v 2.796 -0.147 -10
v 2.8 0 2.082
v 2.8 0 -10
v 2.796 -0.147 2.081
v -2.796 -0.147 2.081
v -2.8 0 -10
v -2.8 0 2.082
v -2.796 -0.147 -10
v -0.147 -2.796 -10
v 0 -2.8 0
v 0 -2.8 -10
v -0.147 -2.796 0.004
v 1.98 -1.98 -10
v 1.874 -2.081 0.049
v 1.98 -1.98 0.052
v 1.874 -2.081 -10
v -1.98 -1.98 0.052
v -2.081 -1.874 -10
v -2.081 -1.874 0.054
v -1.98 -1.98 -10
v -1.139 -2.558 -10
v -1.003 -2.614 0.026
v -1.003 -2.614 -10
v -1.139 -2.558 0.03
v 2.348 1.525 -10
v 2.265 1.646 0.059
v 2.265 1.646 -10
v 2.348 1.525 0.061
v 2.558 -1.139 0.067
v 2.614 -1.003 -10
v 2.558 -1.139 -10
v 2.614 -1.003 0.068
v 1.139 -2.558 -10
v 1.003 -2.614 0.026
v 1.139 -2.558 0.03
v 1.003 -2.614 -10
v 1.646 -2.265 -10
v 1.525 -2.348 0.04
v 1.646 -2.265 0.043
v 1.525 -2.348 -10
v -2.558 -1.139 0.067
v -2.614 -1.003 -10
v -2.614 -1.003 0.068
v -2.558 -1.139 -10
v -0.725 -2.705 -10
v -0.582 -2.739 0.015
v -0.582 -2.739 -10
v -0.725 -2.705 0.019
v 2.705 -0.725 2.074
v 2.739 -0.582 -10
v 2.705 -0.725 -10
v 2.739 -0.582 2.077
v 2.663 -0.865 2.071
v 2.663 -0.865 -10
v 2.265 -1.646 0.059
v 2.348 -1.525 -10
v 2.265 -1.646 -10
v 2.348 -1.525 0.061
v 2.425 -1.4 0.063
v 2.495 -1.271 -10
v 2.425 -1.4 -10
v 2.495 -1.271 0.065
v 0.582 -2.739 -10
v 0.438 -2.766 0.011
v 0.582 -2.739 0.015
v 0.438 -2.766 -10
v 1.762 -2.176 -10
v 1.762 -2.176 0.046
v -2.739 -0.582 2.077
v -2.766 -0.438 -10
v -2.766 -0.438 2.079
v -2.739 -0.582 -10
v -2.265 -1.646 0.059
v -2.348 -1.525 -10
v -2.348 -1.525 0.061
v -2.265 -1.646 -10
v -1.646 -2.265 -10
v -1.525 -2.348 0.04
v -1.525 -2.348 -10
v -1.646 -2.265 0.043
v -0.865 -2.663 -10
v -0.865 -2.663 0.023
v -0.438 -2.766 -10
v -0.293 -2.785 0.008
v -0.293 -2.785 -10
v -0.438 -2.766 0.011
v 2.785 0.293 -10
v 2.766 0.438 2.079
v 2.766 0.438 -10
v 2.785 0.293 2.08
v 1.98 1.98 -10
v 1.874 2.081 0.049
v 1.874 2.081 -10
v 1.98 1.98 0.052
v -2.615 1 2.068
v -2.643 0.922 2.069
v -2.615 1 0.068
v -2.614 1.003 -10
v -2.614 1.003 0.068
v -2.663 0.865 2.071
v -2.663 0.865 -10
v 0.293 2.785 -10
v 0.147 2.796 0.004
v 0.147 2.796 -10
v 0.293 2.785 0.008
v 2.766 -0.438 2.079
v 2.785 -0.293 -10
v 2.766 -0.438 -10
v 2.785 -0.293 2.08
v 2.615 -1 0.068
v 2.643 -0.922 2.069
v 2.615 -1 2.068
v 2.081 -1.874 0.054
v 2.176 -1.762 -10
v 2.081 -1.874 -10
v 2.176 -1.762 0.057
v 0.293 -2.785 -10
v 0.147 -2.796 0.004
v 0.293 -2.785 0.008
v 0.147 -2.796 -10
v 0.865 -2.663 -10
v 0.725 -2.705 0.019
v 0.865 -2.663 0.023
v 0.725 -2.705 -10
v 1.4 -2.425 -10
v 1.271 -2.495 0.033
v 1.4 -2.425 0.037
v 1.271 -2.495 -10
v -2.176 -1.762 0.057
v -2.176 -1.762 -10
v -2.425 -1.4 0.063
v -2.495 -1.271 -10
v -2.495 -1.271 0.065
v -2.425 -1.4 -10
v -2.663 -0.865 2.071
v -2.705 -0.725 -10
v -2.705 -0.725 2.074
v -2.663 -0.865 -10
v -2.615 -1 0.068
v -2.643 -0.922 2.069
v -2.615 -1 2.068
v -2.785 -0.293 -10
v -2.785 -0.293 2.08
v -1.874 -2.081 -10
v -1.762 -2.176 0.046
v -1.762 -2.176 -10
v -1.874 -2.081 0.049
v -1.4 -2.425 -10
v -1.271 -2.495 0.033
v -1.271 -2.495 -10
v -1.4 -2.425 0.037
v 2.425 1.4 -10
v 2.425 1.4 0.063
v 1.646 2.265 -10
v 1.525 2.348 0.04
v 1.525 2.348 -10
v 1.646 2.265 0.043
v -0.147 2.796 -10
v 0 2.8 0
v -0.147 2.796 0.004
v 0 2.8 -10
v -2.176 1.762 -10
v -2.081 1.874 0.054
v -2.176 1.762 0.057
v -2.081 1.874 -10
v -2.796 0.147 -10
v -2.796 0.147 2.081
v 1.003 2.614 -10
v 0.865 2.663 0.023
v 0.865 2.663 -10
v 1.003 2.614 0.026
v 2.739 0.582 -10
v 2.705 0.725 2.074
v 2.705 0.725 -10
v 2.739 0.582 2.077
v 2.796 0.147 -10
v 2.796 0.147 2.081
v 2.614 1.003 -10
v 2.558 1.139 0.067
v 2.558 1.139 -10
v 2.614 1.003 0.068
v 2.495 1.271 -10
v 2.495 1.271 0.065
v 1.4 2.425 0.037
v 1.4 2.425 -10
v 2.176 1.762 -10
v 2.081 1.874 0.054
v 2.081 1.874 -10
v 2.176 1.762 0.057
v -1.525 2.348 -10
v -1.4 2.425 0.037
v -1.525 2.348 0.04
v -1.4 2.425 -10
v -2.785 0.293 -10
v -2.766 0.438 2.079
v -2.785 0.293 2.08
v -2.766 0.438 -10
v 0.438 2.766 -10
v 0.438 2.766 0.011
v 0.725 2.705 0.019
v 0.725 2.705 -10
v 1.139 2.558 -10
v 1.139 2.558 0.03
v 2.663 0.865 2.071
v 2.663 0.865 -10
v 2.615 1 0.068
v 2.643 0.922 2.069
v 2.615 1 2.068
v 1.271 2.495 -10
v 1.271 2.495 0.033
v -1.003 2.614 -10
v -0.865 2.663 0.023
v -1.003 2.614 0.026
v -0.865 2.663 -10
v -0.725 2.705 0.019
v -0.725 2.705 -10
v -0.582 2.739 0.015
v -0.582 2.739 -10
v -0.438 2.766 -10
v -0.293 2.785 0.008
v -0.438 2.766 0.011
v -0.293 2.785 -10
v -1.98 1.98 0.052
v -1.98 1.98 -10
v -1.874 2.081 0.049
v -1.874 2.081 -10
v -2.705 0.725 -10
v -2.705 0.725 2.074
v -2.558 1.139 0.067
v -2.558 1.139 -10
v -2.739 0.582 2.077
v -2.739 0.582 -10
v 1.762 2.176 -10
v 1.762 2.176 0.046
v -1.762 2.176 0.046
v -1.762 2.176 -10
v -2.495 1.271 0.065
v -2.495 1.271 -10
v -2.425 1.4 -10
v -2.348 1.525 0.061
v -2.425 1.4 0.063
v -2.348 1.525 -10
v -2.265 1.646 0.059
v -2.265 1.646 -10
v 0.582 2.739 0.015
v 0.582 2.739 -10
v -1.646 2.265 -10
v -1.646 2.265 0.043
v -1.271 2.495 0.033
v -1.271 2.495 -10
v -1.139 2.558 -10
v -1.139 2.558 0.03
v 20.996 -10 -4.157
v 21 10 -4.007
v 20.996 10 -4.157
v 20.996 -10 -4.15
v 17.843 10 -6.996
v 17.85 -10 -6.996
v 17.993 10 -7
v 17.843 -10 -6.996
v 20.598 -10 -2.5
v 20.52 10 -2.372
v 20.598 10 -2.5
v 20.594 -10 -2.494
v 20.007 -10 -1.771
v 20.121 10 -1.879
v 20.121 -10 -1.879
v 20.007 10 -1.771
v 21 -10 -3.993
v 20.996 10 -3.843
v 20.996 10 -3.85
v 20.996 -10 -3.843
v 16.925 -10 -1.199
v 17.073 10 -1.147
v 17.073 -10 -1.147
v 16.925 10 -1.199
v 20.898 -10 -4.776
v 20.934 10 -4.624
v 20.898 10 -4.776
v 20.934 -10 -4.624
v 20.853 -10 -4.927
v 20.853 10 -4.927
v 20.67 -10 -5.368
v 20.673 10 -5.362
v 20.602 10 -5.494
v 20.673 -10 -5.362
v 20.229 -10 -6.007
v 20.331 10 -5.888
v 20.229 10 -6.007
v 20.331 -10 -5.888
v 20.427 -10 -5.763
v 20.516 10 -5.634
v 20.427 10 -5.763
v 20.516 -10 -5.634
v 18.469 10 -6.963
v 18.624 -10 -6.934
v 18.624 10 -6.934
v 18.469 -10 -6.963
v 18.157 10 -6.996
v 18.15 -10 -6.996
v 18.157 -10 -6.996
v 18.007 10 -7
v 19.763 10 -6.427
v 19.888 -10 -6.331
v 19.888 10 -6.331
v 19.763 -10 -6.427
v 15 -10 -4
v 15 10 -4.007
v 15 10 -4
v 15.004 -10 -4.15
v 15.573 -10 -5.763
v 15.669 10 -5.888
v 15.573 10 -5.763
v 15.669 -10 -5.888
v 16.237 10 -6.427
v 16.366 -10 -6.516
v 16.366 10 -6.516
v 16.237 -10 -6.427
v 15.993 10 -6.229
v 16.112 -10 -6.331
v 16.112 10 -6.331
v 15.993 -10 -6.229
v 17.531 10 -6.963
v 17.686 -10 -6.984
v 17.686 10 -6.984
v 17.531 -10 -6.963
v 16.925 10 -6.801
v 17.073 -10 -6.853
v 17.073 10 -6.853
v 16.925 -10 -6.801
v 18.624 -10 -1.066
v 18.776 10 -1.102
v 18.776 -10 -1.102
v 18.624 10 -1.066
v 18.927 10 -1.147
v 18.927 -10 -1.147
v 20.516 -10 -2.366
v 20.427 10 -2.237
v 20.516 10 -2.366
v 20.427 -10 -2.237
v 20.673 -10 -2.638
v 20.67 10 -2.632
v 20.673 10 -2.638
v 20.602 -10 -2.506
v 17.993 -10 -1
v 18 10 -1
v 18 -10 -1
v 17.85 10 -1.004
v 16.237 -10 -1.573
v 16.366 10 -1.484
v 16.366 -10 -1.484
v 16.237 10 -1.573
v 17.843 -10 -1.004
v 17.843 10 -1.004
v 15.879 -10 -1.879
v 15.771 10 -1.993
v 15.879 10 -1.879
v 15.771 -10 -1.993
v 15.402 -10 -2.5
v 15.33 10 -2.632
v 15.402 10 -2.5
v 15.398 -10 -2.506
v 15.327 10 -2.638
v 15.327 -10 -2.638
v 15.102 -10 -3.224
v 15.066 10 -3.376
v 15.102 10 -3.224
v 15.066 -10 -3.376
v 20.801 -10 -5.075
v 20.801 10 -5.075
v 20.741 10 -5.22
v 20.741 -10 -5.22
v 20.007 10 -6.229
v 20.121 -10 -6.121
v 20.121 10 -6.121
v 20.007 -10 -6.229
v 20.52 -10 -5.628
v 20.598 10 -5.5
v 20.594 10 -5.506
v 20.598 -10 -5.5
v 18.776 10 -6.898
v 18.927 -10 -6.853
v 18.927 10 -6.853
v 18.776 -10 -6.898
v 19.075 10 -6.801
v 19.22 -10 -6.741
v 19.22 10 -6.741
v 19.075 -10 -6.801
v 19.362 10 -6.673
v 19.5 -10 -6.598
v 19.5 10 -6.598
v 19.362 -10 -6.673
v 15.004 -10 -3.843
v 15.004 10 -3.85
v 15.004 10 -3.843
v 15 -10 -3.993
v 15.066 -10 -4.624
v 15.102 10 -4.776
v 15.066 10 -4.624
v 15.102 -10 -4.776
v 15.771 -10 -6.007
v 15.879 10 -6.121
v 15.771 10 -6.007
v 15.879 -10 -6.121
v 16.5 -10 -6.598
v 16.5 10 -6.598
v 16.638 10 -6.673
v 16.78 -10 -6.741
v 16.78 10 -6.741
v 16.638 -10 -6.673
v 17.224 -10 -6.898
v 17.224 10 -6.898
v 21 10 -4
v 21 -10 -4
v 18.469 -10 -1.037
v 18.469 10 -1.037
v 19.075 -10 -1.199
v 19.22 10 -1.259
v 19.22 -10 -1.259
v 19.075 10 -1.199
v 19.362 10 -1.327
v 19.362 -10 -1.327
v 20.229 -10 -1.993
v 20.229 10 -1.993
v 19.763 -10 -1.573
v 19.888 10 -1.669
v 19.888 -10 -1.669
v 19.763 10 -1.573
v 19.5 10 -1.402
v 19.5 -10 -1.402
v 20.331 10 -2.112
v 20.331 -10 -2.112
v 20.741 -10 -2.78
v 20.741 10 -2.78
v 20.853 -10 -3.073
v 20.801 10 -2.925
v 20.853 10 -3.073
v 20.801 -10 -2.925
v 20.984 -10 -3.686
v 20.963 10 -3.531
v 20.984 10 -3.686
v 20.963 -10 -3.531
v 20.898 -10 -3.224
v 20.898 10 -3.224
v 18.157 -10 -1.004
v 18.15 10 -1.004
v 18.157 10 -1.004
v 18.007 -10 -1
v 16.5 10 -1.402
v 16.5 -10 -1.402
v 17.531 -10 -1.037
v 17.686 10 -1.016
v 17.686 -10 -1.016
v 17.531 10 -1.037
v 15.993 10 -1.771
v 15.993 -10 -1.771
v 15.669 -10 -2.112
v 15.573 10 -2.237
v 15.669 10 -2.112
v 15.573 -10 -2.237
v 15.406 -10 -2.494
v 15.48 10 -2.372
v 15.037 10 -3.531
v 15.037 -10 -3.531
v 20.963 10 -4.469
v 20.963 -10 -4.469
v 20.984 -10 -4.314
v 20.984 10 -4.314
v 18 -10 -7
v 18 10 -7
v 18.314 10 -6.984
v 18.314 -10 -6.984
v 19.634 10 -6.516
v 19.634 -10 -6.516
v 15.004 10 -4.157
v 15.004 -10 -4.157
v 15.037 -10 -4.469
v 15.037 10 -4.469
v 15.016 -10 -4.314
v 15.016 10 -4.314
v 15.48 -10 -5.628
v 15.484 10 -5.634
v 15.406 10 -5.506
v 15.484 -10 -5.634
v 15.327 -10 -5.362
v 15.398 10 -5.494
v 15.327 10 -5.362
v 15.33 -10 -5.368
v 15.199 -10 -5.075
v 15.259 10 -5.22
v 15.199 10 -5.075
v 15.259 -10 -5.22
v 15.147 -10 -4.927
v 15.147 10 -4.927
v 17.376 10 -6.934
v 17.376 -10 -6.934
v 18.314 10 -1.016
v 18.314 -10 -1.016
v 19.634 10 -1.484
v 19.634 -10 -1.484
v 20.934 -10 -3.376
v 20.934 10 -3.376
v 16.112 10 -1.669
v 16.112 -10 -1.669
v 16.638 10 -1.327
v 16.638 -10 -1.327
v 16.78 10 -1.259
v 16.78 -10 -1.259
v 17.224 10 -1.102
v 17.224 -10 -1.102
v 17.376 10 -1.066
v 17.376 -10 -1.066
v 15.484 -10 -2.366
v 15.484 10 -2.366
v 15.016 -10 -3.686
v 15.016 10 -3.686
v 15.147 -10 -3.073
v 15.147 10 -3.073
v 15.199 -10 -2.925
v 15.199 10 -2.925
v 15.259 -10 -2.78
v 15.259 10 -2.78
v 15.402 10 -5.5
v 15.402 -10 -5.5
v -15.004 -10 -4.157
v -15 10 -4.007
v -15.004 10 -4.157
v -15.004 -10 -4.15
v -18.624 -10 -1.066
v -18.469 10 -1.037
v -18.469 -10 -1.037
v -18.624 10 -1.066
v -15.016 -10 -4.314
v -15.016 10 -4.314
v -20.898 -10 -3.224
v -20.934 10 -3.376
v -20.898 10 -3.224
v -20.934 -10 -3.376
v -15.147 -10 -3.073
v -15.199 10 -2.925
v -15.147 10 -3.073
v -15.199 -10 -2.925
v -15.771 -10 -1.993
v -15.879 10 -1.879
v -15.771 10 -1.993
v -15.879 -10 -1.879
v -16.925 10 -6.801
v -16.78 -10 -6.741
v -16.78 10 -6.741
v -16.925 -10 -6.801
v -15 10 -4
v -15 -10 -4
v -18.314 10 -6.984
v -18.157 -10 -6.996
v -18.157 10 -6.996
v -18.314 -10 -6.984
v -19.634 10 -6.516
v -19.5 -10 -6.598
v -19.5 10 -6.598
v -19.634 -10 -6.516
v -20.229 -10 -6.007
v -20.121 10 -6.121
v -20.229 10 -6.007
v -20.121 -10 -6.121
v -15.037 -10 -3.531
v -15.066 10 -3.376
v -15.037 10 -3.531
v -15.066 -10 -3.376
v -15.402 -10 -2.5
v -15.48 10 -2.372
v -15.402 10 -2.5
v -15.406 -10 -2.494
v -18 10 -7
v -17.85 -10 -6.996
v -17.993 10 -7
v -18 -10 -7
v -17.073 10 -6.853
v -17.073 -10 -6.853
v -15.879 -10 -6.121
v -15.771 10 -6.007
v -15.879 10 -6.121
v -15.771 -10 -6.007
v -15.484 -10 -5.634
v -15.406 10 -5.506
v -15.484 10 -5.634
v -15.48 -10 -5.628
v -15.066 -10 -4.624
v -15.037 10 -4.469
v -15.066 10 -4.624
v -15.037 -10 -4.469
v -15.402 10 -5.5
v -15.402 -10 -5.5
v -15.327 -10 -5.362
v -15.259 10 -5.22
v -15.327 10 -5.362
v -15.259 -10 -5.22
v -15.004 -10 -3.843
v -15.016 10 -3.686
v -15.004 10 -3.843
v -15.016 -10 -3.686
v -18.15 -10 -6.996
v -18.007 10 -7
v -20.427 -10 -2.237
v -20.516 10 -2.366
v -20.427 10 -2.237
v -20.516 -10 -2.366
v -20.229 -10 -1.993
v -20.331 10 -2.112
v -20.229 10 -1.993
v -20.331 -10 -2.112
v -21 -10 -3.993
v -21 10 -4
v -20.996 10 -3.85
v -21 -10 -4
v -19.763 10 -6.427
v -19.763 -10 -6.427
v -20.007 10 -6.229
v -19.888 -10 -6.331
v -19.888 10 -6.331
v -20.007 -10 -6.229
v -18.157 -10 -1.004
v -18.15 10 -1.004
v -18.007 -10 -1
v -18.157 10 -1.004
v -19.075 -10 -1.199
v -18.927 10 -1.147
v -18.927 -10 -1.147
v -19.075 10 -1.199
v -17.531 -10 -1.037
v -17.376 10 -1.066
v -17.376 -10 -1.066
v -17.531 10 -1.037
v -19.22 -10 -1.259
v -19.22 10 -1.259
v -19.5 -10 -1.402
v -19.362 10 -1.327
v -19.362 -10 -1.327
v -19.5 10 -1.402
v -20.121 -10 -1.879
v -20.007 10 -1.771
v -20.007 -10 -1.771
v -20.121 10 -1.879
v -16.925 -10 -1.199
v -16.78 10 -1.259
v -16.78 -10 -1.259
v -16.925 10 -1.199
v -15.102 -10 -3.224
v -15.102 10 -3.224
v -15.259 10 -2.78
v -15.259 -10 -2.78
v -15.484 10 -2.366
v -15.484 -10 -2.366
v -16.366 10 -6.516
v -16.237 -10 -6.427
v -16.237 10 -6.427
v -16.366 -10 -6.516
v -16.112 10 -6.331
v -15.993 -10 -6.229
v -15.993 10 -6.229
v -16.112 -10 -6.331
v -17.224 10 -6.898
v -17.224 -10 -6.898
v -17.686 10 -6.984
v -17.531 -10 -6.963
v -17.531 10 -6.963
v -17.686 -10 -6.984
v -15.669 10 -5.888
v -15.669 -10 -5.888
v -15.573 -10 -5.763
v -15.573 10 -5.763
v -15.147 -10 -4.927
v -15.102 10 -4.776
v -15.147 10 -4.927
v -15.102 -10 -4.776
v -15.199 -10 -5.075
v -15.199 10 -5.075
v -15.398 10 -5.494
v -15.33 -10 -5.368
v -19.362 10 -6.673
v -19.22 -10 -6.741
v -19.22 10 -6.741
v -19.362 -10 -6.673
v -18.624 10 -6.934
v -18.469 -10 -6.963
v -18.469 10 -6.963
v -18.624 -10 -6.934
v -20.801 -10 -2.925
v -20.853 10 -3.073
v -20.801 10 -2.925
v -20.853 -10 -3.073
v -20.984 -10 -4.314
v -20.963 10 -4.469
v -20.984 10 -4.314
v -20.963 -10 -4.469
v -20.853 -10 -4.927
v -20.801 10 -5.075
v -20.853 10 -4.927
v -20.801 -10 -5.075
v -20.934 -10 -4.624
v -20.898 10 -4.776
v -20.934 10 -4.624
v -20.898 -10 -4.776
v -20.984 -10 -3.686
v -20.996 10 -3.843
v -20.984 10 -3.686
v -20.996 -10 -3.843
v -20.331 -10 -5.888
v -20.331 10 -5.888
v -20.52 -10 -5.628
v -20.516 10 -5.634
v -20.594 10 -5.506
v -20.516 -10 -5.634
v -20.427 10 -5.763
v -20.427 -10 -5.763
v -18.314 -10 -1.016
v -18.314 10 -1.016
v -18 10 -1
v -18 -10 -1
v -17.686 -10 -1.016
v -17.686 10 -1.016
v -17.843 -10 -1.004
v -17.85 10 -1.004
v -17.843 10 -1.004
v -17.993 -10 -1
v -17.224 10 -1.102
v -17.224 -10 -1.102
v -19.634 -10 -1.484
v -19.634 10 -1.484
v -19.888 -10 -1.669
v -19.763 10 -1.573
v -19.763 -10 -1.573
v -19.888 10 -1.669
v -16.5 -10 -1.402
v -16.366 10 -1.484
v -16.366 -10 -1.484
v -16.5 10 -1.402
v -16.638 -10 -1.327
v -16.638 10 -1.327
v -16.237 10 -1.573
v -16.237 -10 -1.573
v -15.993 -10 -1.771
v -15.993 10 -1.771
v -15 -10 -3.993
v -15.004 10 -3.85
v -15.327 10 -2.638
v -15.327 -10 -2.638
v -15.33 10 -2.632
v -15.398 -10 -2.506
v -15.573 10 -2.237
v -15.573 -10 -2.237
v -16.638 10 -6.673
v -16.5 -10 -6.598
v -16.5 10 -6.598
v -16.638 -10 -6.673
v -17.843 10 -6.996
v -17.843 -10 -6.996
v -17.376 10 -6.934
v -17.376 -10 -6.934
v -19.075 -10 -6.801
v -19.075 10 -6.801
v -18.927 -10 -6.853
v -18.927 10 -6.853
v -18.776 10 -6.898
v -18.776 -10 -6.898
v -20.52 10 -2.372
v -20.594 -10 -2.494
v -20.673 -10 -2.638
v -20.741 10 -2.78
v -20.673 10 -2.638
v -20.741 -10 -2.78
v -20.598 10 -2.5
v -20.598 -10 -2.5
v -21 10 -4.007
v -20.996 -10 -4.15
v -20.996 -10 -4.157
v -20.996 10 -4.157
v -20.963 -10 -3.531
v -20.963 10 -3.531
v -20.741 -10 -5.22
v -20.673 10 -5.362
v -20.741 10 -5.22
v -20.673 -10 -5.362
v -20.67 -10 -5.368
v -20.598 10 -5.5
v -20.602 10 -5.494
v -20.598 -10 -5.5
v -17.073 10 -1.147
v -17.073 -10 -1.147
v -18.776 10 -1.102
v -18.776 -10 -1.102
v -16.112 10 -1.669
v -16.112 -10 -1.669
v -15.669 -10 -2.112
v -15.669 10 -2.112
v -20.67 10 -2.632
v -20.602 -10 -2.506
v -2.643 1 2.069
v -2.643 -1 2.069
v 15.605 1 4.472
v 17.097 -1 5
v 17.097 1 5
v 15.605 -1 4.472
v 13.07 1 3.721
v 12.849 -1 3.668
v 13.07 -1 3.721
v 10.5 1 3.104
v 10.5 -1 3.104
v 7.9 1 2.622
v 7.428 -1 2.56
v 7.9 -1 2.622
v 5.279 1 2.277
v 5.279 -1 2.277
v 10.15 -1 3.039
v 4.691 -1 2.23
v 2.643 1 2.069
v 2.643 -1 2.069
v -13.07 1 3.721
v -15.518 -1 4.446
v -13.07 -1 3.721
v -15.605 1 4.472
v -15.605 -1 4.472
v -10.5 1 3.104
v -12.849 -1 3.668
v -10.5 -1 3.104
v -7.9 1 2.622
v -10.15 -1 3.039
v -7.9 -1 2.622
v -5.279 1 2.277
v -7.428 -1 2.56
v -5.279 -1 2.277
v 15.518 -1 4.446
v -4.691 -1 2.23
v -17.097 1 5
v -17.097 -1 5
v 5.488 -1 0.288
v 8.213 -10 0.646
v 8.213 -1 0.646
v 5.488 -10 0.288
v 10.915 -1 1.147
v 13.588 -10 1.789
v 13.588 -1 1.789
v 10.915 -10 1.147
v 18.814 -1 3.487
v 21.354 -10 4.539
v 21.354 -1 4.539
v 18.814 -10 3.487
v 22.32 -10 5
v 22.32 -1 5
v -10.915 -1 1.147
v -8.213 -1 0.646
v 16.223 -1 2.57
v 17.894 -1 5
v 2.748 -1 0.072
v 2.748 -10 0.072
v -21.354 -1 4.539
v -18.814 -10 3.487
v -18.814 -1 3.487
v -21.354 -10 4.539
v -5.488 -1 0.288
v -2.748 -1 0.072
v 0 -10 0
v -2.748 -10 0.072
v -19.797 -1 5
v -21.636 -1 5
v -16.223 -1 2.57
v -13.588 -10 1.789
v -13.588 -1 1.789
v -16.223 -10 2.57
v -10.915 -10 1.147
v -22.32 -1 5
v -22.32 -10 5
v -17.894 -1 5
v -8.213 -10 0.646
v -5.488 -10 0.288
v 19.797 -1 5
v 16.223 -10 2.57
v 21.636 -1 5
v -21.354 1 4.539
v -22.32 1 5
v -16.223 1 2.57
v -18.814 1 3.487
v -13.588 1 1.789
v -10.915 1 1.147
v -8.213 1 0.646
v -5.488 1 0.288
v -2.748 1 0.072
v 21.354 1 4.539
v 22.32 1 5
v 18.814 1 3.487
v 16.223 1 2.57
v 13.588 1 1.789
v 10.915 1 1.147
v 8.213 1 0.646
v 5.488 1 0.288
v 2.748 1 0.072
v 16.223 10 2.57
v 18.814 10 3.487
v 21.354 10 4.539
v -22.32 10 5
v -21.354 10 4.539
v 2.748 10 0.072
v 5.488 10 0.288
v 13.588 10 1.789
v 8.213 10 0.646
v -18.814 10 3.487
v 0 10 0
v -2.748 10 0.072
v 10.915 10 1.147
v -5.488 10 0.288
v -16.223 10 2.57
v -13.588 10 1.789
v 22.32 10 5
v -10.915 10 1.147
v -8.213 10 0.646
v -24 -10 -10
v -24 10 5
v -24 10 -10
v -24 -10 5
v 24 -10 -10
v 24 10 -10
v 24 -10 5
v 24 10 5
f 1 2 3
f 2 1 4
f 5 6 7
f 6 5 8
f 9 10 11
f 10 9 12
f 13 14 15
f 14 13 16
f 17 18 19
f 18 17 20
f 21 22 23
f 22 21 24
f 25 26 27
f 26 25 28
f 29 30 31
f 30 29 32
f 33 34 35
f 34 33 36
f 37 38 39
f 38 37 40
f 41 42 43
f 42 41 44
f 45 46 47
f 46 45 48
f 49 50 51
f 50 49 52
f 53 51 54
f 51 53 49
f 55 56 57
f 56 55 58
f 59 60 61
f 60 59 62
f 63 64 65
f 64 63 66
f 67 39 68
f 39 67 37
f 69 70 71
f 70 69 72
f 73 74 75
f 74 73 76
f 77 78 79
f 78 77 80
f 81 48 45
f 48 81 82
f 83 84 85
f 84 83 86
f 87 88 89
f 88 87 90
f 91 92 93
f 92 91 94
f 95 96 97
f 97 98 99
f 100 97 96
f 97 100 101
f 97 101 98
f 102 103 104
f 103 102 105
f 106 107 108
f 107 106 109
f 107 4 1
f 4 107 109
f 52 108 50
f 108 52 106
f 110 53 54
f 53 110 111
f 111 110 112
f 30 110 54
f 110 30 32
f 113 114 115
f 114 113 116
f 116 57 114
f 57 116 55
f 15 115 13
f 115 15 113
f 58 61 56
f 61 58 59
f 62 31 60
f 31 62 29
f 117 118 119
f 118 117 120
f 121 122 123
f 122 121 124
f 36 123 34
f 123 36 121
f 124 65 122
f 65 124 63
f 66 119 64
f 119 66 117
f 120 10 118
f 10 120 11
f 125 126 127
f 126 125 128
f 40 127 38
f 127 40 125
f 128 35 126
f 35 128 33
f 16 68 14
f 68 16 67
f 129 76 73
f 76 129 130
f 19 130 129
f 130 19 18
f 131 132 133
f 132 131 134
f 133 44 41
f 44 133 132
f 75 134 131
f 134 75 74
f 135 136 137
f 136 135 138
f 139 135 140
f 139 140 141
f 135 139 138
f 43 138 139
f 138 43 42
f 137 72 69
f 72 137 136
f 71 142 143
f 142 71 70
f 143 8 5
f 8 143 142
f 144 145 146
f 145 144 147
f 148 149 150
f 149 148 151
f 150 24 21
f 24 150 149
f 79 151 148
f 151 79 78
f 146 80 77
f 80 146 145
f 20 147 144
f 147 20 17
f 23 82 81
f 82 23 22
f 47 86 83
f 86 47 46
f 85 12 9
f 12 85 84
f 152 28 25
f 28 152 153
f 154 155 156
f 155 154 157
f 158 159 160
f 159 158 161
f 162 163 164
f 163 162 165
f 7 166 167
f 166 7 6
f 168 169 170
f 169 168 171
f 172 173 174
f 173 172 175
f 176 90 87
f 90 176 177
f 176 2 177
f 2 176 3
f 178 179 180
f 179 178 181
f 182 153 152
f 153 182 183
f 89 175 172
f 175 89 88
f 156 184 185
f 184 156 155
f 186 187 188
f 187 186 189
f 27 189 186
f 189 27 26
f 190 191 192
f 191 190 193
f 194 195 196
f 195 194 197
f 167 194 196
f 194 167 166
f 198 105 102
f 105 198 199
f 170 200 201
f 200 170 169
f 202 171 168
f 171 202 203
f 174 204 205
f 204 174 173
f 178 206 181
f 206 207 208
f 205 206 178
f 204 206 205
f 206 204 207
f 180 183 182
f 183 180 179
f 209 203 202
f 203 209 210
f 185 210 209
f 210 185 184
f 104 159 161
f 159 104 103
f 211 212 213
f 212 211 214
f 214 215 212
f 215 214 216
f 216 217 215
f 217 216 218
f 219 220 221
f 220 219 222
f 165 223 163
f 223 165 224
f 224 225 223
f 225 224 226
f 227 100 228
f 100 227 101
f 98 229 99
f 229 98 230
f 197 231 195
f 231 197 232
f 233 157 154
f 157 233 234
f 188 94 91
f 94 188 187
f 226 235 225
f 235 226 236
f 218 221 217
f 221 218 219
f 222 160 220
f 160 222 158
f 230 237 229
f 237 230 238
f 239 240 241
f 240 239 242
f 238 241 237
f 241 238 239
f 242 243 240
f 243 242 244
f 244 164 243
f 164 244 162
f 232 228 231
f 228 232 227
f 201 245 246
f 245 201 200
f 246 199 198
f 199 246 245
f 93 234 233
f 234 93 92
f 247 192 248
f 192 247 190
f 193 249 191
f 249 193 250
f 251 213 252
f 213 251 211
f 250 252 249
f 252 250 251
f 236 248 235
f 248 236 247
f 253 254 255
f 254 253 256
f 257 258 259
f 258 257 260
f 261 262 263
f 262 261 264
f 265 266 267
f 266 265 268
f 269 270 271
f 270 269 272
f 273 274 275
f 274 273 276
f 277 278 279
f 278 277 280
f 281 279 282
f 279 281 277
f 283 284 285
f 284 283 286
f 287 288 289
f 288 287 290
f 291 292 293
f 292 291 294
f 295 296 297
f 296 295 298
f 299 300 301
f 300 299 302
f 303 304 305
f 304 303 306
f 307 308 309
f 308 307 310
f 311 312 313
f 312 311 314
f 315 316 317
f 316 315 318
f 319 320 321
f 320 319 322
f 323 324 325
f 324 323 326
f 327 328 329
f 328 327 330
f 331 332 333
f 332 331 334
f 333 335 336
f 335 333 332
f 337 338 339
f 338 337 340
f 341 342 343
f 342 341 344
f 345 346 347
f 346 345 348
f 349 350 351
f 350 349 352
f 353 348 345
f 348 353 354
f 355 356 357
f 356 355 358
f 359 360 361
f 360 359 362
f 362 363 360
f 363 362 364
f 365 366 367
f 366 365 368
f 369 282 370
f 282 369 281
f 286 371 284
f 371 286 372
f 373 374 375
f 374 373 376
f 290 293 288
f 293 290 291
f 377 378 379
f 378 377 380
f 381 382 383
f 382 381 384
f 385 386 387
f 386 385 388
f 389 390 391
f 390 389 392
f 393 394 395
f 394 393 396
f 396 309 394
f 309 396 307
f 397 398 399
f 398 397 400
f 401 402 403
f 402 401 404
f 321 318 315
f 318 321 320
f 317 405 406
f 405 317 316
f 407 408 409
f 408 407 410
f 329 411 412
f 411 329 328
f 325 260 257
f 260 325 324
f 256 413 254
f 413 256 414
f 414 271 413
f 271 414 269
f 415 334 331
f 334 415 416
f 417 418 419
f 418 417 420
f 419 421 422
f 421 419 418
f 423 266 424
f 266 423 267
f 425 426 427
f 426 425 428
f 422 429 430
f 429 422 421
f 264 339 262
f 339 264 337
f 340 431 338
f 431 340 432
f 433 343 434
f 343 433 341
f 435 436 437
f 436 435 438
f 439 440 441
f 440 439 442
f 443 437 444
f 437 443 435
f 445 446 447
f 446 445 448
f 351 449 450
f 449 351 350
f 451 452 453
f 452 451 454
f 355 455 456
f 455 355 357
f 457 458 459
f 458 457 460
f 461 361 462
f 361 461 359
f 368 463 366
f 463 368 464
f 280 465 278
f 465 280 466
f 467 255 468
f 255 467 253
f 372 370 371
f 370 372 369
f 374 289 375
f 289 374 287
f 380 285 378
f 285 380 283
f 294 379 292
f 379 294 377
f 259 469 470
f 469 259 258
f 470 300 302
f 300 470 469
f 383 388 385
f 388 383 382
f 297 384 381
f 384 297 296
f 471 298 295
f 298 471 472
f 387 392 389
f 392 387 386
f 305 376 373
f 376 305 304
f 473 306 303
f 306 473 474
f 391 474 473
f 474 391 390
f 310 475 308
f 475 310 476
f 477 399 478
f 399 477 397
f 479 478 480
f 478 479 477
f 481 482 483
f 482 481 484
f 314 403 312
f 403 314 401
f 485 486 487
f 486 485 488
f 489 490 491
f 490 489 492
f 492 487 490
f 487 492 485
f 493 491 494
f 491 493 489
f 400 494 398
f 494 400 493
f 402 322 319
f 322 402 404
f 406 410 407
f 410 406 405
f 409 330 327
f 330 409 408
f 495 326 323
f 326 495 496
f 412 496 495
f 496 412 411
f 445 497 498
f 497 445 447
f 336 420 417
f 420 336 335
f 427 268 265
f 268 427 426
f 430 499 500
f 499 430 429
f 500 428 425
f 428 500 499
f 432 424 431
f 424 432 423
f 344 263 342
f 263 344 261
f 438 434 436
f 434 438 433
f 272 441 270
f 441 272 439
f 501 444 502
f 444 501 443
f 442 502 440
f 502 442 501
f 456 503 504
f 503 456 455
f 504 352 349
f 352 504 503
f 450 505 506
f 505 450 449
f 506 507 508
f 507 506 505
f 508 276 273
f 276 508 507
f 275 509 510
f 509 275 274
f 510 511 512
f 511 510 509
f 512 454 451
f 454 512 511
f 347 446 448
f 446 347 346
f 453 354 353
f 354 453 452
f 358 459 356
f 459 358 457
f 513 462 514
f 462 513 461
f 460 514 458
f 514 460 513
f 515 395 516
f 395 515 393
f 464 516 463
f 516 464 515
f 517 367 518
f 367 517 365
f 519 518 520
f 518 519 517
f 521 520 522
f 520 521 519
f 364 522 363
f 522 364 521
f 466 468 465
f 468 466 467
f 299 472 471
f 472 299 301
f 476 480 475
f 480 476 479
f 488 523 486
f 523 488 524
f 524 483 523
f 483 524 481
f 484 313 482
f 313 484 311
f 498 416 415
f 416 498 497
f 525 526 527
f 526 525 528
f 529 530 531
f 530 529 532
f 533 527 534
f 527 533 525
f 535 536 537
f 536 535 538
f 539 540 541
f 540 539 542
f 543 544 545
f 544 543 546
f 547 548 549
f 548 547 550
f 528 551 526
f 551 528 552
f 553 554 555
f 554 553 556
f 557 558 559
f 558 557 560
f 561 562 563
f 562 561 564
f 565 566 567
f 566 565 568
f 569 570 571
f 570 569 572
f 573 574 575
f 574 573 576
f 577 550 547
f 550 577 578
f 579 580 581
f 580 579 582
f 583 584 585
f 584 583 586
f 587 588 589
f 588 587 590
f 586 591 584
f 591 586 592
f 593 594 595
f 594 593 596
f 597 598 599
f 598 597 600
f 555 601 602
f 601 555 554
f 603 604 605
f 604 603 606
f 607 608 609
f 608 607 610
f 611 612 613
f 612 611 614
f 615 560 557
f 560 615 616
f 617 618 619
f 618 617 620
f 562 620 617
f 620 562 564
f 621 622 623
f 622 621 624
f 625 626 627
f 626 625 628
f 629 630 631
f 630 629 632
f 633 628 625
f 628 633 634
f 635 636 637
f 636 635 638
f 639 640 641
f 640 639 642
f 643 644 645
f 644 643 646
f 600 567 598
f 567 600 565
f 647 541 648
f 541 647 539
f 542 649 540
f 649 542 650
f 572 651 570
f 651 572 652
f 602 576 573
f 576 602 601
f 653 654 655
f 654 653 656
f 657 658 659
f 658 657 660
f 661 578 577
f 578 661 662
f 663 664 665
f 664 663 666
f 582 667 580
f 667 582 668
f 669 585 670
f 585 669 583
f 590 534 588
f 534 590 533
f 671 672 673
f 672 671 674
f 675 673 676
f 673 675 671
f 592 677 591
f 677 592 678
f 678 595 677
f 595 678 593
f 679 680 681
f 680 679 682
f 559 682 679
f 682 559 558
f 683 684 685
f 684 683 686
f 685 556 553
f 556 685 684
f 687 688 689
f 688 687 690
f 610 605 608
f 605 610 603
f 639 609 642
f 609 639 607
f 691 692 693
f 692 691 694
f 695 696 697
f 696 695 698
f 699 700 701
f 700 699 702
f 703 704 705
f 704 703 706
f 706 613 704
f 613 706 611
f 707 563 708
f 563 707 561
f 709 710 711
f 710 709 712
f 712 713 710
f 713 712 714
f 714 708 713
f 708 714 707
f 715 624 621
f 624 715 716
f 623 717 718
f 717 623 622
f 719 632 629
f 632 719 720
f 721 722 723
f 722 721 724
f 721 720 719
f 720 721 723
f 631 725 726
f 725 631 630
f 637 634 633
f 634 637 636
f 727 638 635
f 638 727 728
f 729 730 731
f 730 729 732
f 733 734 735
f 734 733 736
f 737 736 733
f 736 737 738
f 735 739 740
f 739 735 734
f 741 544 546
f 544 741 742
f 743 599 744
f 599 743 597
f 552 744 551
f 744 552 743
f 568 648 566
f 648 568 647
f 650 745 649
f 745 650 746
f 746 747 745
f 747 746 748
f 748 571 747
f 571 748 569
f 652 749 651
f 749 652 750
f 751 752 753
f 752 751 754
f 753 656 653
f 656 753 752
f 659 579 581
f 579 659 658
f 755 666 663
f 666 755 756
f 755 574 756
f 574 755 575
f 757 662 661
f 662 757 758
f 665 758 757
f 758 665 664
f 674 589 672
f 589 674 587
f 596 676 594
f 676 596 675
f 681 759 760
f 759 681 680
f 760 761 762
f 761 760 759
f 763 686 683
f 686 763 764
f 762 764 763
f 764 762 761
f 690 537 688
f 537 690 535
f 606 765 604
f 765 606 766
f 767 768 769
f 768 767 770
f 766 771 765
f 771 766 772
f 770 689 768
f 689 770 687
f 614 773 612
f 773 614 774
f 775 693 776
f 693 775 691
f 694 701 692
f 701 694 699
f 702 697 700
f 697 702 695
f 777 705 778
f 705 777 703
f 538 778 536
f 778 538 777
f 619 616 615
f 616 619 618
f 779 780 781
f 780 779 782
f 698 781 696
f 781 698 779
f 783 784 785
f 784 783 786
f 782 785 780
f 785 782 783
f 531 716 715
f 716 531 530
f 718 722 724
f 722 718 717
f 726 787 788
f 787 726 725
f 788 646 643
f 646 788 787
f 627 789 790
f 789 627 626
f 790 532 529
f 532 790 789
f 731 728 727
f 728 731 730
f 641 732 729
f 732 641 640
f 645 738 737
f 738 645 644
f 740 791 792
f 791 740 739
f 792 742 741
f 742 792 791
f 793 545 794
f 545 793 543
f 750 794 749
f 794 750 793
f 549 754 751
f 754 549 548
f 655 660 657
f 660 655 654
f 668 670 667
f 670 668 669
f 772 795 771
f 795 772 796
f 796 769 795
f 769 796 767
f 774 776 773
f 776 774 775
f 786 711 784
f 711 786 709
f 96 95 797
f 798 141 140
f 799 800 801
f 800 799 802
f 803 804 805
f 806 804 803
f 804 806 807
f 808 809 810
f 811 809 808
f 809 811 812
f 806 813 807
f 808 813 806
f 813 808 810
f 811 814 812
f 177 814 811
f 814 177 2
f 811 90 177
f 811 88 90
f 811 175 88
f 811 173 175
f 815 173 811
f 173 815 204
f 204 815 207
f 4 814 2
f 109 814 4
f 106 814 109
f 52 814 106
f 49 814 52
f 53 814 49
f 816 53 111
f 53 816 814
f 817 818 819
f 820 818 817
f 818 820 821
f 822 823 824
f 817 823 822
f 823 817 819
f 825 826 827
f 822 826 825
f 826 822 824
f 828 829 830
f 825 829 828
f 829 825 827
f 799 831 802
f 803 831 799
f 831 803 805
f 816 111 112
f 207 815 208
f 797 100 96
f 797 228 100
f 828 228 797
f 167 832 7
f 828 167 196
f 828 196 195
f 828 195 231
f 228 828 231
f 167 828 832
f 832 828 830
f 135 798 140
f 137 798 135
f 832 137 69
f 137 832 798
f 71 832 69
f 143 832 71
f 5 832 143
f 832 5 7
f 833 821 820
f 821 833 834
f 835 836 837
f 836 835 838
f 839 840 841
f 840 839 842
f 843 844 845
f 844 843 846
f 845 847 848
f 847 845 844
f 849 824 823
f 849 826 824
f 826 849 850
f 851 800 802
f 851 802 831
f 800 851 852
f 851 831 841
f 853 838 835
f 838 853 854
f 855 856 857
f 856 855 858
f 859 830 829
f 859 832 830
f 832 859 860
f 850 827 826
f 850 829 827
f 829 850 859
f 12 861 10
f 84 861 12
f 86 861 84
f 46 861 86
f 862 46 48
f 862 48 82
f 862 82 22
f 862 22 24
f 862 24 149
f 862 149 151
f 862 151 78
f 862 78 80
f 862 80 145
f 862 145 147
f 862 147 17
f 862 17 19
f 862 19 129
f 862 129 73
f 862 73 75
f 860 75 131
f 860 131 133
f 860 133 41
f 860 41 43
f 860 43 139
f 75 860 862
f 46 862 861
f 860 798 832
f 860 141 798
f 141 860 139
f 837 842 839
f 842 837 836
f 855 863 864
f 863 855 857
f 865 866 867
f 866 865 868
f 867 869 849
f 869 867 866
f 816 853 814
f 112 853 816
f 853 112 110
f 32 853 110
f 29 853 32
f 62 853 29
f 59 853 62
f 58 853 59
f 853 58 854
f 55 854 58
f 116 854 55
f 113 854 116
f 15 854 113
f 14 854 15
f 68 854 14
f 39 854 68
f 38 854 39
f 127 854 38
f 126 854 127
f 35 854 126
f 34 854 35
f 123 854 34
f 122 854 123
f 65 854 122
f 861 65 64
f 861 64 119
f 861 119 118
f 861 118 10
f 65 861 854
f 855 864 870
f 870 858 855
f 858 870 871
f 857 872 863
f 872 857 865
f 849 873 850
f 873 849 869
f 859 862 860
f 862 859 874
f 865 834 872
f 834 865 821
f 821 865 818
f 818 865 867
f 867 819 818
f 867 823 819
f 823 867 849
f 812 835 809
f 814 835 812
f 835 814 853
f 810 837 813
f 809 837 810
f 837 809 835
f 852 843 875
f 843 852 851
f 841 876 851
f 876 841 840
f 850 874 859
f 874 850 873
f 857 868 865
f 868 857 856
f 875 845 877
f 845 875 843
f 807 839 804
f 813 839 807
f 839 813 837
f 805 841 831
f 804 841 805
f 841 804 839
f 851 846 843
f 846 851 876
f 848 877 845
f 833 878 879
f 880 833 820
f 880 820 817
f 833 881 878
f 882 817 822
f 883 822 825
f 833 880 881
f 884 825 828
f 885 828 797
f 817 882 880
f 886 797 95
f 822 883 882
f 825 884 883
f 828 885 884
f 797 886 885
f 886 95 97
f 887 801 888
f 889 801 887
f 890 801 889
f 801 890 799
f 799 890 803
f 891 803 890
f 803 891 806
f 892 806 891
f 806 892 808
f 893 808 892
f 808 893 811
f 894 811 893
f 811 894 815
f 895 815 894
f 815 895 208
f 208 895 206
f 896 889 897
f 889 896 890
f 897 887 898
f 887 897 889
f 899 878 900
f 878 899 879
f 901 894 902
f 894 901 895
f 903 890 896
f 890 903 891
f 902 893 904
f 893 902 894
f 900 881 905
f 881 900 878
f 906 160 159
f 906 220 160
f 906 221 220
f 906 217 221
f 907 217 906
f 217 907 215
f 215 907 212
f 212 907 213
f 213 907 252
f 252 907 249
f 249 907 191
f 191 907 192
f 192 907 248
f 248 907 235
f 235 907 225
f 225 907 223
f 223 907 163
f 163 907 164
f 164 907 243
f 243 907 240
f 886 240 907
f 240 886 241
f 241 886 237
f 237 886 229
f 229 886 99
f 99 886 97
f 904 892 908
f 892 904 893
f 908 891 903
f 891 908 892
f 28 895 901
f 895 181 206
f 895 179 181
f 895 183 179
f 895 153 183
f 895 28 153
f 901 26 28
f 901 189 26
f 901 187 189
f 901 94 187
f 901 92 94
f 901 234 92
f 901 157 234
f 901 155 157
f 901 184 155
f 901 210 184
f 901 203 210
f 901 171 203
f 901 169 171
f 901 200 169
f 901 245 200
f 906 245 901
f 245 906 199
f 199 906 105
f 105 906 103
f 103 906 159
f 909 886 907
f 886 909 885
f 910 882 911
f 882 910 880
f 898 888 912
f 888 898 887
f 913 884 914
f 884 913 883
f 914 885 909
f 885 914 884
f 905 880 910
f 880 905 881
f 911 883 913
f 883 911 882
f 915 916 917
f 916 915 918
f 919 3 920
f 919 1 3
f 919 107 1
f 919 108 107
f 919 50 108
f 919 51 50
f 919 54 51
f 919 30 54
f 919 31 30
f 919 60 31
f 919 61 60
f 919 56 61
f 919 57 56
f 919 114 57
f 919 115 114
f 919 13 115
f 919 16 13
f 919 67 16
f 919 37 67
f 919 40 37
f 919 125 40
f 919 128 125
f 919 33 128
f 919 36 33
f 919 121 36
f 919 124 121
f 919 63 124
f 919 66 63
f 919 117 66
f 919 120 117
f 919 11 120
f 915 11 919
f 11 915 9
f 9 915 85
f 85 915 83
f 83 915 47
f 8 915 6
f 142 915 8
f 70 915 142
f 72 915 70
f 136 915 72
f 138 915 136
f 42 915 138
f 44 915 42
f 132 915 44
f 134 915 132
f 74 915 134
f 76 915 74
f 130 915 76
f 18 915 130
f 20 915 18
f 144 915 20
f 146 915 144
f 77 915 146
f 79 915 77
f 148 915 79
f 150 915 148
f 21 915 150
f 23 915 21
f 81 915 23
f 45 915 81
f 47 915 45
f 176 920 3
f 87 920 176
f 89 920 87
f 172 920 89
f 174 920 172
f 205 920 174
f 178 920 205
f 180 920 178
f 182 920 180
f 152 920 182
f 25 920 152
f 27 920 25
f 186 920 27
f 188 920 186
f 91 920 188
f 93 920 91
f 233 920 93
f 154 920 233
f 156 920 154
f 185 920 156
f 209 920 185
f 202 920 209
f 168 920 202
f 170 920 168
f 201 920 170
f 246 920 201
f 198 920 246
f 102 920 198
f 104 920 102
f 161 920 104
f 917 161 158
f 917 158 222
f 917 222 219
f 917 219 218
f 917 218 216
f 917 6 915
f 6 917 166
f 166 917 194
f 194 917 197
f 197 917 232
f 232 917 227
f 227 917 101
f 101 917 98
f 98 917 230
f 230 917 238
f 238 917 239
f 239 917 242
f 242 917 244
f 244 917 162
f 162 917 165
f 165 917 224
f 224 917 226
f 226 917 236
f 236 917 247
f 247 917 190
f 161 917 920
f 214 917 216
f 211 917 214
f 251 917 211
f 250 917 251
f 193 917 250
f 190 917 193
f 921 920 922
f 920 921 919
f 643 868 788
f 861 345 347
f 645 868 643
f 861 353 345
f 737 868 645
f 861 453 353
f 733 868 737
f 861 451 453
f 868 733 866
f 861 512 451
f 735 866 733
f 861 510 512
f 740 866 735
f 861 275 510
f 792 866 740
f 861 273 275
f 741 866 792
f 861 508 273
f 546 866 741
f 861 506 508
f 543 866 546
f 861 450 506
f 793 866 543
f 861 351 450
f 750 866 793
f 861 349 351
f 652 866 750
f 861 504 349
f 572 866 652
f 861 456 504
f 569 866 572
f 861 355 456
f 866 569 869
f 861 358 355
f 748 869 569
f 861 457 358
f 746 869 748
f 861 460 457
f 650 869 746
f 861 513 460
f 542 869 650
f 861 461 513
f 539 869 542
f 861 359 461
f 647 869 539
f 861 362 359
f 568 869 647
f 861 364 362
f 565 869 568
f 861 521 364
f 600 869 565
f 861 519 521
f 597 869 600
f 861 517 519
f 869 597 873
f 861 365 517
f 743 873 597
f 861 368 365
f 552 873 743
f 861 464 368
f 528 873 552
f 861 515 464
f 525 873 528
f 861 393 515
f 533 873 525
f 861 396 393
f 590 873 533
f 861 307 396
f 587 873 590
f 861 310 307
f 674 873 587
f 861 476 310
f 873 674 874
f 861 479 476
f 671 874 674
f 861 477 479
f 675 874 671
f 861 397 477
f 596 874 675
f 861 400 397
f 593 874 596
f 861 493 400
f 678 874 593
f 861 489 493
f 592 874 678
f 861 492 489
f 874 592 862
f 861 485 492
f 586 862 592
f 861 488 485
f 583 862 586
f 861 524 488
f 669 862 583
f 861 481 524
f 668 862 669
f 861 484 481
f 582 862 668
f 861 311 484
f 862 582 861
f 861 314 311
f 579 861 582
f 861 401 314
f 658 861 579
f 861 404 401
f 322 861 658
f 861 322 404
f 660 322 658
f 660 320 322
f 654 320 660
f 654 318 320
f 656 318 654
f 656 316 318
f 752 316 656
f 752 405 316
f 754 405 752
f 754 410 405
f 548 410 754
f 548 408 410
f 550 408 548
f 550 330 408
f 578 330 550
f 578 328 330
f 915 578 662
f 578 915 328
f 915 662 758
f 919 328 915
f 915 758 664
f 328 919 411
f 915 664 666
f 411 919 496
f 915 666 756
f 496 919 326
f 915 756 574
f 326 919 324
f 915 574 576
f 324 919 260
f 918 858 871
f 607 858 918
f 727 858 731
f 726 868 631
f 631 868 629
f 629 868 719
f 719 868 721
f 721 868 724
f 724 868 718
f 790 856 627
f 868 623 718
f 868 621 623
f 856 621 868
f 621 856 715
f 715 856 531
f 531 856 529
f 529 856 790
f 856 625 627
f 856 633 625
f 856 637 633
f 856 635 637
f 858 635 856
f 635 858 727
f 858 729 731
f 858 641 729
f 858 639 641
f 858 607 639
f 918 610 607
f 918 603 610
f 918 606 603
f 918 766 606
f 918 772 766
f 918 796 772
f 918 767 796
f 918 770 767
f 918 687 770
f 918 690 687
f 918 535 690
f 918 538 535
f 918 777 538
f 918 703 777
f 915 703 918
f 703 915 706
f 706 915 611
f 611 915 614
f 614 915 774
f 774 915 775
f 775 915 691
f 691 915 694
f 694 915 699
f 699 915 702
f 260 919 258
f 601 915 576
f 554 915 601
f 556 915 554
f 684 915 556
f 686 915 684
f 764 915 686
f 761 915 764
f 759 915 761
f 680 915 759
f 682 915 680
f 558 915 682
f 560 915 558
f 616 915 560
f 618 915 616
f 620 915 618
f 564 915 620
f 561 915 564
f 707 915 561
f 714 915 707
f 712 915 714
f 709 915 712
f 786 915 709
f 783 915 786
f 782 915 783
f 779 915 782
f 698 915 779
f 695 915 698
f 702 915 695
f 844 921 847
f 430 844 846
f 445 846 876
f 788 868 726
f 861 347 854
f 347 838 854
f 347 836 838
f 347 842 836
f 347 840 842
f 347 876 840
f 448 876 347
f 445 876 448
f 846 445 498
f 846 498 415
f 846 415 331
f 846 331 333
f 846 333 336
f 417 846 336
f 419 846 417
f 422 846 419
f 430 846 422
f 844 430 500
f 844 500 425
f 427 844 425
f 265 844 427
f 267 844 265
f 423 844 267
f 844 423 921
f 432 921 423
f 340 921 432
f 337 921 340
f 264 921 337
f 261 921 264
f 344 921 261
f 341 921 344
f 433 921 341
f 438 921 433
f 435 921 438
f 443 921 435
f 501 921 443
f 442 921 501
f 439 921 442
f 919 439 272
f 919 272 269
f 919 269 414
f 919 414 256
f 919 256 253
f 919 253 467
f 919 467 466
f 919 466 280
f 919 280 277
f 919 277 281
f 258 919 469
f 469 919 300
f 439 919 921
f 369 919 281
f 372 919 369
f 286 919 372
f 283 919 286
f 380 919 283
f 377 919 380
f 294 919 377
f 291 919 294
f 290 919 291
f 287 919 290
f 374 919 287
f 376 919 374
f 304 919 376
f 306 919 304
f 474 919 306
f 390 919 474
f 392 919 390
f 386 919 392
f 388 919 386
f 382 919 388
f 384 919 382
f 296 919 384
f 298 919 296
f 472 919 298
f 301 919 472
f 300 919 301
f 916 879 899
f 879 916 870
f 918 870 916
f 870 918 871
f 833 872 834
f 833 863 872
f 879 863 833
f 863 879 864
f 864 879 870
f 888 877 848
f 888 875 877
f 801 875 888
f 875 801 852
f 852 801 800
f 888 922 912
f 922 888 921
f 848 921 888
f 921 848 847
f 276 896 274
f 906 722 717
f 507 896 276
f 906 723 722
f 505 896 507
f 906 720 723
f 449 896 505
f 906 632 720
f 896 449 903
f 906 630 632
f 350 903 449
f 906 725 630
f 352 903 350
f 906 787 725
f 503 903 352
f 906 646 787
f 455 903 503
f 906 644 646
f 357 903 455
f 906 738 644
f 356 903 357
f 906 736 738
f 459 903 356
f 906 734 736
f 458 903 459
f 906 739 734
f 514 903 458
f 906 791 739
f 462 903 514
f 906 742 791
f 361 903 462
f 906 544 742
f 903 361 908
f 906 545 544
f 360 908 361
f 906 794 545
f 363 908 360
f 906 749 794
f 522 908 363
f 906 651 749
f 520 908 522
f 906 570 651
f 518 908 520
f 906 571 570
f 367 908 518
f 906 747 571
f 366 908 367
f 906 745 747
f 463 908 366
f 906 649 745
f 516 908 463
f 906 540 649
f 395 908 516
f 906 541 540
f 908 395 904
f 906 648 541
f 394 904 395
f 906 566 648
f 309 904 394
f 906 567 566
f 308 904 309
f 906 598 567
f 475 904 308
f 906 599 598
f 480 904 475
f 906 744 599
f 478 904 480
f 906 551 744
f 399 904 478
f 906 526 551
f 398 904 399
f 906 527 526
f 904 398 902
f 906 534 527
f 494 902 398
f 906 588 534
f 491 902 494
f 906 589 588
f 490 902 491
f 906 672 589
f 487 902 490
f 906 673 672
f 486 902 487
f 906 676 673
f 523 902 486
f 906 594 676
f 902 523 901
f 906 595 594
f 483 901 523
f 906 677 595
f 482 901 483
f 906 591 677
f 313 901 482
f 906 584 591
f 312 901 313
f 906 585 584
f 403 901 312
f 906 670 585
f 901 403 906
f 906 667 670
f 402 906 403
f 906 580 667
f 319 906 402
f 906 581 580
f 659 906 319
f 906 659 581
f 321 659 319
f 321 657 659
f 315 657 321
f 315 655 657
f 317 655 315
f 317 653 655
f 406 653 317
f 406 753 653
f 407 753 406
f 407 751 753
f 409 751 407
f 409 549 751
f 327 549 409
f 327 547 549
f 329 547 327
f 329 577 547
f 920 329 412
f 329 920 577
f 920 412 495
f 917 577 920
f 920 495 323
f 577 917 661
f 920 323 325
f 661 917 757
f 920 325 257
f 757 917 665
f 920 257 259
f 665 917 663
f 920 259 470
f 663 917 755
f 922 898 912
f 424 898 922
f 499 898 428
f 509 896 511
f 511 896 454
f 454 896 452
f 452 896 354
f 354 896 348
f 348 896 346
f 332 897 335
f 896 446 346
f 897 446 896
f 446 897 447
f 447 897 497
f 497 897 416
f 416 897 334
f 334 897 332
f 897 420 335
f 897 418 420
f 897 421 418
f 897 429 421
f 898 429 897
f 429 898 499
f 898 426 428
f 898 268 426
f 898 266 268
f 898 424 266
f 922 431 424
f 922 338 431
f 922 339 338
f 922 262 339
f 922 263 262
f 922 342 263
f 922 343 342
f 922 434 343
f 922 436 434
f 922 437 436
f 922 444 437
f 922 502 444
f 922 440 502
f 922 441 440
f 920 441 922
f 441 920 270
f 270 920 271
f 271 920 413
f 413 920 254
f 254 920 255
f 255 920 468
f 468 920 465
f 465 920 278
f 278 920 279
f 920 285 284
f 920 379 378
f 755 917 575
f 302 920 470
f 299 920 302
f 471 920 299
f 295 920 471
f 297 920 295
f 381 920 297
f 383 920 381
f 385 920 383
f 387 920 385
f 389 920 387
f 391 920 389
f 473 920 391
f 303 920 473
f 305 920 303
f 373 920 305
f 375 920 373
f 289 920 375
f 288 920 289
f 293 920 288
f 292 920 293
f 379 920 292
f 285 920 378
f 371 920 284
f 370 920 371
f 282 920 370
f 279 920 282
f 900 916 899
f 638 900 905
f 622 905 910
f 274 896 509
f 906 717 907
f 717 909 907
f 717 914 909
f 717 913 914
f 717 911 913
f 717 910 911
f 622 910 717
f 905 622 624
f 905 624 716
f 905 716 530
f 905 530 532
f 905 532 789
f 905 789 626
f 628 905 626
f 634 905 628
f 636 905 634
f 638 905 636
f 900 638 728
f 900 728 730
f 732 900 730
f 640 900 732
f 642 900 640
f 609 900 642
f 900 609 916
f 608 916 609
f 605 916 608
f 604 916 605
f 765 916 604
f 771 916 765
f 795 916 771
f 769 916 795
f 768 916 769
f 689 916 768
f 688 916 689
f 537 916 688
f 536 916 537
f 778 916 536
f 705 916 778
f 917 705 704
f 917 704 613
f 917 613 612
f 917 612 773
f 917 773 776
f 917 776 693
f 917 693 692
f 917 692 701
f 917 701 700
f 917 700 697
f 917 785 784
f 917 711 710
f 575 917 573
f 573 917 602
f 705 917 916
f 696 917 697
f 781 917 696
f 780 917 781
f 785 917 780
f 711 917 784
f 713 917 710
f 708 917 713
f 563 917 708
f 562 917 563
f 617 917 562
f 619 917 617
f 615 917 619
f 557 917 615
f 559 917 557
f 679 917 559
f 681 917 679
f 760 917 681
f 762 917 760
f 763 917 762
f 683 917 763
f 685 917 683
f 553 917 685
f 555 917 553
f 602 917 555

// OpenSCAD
$fn = 120;

outerdiameter = 105;
innerdiameter = outerdiameter - 4;

rotate([180,0,0]) {
    difference() {
        translate([0,0,5/2])
            cube([48,20,15], center=true);
    
        union() {
            cylinder(r=5.6/2, h=21, center=true);
            
            translate([18,0,4])
                rotate([90,0,0])
                cylinder(r=6/2, h=22, center=true);
            
            translate([-18,0,4])
                rotate([90,0,0])
                cylinder(r=6/2, h=22, center=true);
        
            translate([0,0,-outerdiameter/2])
                rotate([90,0,0])
                cylinder(r=innerdiameter/2, h=22, center=true);
            translate([0,6,-outerdiameter/2])
                rotate([90,0,0])
                cylinder(r=outerdiameter/2, h=10, center=true);
            translate([0,-6,-outerdiameter/2])
                rotate([90,0,0])
                cylinder(r=outerdiameter/2, h=10, center=true);
        }
    }
}
